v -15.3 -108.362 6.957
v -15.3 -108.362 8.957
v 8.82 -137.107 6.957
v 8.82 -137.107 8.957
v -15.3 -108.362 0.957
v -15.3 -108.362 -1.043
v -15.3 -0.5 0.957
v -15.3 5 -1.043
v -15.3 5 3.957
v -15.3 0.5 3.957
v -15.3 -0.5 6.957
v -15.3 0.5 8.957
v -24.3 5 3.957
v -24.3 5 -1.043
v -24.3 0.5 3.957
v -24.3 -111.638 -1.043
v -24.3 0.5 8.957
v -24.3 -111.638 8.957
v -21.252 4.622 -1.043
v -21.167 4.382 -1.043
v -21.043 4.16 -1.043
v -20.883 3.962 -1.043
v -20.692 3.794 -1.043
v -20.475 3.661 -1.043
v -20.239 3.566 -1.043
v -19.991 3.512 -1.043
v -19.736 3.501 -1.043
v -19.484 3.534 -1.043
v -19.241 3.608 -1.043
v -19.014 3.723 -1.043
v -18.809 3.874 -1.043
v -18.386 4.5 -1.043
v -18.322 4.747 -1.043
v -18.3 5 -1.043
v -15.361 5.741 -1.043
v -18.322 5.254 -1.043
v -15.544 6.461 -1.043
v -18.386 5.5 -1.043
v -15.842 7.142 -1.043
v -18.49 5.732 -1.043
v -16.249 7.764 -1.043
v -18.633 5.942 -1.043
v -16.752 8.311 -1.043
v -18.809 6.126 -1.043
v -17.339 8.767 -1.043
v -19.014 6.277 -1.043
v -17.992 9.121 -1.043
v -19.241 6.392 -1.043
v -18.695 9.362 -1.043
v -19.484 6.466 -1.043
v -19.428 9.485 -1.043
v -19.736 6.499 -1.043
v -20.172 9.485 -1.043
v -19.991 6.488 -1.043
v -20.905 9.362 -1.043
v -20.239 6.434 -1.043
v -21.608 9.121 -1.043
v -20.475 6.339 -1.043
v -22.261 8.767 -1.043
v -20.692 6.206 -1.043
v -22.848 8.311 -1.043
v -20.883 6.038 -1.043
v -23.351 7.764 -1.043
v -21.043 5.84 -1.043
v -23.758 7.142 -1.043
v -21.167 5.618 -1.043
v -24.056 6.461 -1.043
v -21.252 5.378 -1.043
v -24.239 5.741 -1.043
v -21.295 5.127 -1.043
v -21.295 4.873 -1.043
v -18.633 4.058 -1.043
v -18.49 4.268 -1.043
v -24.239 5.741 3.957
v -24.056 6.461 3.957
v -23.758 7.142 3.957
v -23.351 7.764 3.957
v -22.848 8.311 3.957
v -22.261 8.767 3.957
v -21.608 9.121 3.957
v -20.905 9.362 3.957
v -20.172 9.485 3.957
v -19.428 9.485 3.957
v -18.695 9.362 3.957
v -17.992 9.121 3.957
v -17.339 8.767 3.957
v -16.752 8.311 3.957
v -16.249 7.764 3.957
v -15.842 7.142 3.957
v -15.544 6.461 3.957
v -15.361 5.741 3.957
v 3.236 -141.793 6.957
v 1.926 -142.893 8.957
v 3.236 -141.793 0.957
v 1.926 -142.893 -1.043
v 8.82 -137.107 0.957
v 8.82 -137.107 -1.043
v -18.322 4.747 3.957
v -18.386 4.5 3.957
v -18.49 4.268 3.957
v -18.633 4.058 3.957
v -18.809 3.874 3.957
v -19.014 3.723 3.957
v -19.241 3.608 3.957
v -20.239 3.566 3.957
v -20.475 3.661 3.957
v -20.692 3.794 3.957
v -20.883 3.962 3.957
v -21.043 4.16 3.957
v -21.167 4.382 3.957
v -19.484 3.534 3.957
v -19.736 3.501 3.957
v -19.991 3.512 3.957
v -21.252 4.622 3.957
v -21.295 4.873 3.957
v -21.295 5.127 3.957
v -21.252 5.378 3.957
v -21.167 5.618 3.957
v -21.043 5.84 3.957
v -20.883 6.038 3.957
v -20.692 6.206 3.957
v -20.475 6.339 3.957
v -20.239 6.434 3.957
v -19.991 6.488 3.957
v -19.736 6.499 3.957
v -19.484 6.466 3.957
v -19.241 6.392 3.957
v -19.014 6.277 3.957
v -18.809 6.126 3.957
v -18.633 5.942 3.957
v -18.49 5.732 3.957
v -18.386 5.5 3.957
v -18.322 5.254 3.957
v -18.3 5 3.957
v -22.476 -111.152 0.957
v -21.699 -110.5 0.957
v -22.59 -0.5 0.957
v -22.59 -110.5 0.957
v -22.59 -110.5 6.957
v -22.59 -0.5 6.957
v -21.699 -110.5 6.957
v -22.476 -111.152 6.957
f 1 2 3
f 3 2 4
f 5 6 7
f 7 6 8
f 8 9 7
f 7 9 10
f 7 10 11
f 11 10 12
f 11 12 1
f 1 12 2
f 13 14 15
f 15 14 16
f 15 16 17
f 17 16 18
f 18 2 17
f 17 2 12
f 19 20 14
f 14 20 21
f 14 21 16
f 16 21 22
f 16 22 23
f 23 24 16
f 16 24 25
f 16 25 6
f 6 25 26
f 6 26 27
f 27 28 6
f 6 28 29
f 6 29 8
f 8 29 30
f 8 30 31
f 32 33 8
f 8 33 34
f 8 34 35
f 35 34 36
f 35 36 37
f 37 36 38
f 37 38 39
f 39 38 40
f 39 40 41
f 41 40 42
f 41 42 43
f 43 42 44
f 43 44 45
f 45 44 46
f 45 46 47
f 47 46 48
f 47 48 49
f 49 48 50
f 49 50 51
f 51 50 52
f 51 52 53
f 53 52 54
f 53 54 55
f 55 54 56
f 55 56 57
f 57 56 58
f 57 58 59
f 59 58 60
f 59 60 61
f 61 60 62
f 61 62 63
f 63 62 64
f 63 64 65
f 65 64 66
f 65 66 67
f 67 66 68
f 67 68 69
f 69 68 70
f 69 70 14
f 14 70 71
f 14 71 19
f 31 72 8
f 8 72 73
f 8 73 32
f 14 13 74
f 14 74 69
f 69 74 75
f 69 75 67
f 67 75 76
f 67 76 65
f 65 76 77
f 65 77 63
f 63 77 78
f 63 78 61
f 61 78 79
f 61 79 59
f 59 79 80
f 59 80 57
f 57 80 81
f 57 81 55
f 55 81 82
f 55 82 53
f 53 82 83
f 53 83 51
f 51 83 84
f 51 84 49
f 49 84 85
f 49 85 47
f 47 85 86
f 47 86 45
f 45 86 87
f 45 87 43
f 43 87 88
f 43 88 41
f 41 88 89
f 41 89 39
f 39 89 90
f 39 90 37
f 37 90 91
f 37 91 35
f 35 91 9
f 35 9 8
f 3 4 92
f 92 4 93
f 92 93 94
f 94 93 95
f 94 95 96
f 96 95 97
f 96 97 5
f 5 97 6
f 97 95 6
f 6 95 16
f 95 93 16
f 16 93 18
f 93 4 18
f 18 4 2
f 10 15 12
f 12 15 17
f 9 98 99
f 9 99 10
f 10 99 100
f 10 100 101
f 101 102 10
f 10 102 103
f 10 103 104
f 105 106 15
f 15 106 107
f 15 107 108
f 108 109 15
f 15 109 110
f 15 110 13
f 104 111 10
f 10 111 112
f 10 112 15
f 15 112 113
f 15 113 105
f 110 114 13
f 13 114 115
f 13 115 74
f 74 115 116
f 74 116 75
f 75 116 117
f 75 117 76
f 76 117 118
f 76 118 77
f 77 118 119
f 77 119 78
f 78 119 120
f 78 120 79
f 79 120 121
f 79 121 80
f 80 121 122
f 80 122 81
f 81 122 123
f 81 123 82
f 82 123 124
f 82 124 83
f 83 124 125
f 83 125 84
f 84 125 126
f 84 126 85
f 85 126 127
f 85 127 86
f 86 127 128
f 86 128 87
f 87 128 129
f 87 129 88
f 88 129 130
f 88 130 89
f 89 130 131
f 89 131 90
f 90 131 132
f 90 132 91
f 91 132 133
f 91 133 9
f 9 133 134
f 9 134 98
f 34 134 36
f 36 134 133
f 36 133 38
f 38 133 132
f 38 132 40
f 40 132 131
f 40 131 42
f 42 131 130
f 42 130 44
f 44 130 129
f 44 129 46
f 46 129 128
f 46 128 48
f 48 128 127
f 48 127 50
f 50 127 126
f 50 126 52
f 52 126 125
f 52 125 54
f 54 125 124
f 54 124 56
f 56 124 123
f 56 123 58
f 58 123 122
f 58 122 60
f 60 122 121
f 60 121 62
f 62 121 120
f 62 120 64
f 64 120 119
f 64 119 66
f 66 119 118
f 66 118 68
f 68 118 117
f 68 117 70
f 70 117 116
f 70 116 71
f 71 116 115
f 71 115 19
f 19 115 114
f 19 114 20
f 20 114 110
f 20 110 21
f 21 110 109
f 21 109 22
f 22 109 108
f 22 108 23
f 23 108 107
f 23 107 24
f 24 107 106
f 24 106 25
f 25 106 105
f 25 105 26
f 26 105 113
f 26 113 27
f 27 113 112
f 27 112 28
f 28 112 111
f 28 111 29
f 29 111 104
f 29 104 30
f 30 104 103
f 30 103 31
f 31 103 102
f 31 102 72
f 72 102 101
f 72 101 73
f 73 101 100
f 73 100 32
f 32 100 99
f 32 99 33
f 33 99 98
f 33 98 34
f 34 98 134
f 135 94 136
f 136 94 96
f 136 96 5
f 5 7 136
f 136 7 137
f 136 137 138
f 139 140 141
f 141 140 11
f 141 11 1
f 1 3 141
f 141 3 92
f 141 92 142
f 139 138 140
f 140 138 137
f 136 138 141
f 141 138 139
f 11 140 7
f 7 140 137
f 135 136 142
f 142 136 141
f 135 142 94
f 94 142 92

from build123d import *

# Parameters (mm, degrees)
SKETCH_4_W          = 9
SKETCH_4_H          = 10
EXTRUDE_2_DEPTH     = 10
CUT_EXTRUDE_1_DEPTH = 10
SKETCH_4_2_W        = 9
SKETCH_4_2_H        = 10
CUT_EXTRUDE_START   = 10
CUT_EXTRUDE_2_DEPTH = 10
SKETCH_8_R          = 1.5
CUT_EXTRUDE_3_DEPTH = 10
SKETCH_9_W          = 7.29
SKETCH_9_H          = 6
CUT_EXTRUDE_5_DEPTH = 110
SKETCH_13_W         = 7.29
SKETCH_13_H         = 6
CUT_EXTRUDE_6_DEPTH = 40


with BuildPart() as part:
    # 草图4 → 凸台-拉伸2 (new body)
    with BuildSketch(Plane(origin=(0, 0, 0), x_dir=(1, 0, 0), z_dir=(0, 1, 0))):
        with Locations((-19.8, -3.957142857)):
            Rectangle(SKETCH_4_W, SKETCH_4_H)
    extrude(amount=EXTRUDE_2_DEPTH)

    # 草图6 → 切除-拉伸1 (cut)
    with BuildSketch(Plane.XY.offset(8.957142857)):
        with BuildLine():
            Line((-24.3, 10), (-24.3, 5))
            ThreePointArc((-24.3, 5), (-19.8, 9.5), (-15.3, 5))
            Line((-15.3, 5), (-15.3, 10))
            Line((-15.3, 10), (-24.3, 10))
        make_face()
    extrude(amount=-CUT_EXTRUDE_1_DEPTH, mode=Mode.SUBTRACT)

    # 扫描2: sweep along a path in 草图5
    with BuildLine(Plane.XY.offset(3.957142857)) as sweep_2_path:
        Line((-19.8, 0), (-19.8, -110))
        Line((-19.8, -110), (5.372988935, -140))
    # 草图4<2> → 扫描2 (sweep)
    with BuildSketch(Plane(origin=(0, 0, 0), x_dir=(1, 0, 0), z_dir=(0, 1, 0))):
        with Locations((-19.8, -3.957142857)):
            Rectangle(SKETCH_4_2_W, SKETCH_4_2_H)
    sweep(path=sweep_2_path.line, transition=Transition.RIGHT)

    # 草图7 → 切除-拉伸2 (cut)
    with BuildSketch(Plane.XY.offset(3.957142857).offset(CUT_EXTRUDE_START)):
        with BuildLine():
            Line((-24.3, 5), (-24.3, 0.5))
            Line((-24.3, 0.5), (-15.3, 0.5))
            Line((-15.3, 0.5), (-15.3, 5))
            ThreePointArc((-15.3, 5), (-19.8, 9.5), (-24.3, 5))
        make_face()
    extrude(amount=-CUT_EXTRUDE_2_DEPTH, mode=Mode.SUBTRACT)

    # 草图8 → 切除-拉伸3 (cut)
    with BuildSketch(Plane.XY.offset(3.957142857)):
        with Locations((-19.8, 5)):
            Circle(SKETCH_8_R)
    extrude(amount=-CUT_EXTRUDE_3_DEPTH, mode=Mode.SUBTRACT)

    # 草图9 → 切除-拉伸5 (cut)
    with BuildSketch(Plane(origin=(0, -0.5, 0), x_dir=(1, 0, 0), z_dir=(0, 1, 0))):
        with Locations((-18.945, -3.957142857)):
            Rectangle(SKETCH_9_W, SKETCH_9_H)
    extrude(amount=-CUT_EXTRUDE_5_DEPTH, mode=Mode.SUBTRACT)

    # 草图13 → 切除-拉伸6 (cut)
    with BuildSketch(Plane(origin=(71.15653231, -84.801053017, 0), x_dir=(0.7660444431189772, 0.6427876096865404, 0), z_dir=(0.6427876096865403, -0.7660444431189771, 0))):
        with Locations((-85.019317039, 3.957142857)):
            Rectangle(SKETCH_13_W, SKETCH_13_H)
    extrude(amount=-CUT_EXTRUDE_6_DEPTH, mode=Mode.SUBTRACT)


solid = part.part
